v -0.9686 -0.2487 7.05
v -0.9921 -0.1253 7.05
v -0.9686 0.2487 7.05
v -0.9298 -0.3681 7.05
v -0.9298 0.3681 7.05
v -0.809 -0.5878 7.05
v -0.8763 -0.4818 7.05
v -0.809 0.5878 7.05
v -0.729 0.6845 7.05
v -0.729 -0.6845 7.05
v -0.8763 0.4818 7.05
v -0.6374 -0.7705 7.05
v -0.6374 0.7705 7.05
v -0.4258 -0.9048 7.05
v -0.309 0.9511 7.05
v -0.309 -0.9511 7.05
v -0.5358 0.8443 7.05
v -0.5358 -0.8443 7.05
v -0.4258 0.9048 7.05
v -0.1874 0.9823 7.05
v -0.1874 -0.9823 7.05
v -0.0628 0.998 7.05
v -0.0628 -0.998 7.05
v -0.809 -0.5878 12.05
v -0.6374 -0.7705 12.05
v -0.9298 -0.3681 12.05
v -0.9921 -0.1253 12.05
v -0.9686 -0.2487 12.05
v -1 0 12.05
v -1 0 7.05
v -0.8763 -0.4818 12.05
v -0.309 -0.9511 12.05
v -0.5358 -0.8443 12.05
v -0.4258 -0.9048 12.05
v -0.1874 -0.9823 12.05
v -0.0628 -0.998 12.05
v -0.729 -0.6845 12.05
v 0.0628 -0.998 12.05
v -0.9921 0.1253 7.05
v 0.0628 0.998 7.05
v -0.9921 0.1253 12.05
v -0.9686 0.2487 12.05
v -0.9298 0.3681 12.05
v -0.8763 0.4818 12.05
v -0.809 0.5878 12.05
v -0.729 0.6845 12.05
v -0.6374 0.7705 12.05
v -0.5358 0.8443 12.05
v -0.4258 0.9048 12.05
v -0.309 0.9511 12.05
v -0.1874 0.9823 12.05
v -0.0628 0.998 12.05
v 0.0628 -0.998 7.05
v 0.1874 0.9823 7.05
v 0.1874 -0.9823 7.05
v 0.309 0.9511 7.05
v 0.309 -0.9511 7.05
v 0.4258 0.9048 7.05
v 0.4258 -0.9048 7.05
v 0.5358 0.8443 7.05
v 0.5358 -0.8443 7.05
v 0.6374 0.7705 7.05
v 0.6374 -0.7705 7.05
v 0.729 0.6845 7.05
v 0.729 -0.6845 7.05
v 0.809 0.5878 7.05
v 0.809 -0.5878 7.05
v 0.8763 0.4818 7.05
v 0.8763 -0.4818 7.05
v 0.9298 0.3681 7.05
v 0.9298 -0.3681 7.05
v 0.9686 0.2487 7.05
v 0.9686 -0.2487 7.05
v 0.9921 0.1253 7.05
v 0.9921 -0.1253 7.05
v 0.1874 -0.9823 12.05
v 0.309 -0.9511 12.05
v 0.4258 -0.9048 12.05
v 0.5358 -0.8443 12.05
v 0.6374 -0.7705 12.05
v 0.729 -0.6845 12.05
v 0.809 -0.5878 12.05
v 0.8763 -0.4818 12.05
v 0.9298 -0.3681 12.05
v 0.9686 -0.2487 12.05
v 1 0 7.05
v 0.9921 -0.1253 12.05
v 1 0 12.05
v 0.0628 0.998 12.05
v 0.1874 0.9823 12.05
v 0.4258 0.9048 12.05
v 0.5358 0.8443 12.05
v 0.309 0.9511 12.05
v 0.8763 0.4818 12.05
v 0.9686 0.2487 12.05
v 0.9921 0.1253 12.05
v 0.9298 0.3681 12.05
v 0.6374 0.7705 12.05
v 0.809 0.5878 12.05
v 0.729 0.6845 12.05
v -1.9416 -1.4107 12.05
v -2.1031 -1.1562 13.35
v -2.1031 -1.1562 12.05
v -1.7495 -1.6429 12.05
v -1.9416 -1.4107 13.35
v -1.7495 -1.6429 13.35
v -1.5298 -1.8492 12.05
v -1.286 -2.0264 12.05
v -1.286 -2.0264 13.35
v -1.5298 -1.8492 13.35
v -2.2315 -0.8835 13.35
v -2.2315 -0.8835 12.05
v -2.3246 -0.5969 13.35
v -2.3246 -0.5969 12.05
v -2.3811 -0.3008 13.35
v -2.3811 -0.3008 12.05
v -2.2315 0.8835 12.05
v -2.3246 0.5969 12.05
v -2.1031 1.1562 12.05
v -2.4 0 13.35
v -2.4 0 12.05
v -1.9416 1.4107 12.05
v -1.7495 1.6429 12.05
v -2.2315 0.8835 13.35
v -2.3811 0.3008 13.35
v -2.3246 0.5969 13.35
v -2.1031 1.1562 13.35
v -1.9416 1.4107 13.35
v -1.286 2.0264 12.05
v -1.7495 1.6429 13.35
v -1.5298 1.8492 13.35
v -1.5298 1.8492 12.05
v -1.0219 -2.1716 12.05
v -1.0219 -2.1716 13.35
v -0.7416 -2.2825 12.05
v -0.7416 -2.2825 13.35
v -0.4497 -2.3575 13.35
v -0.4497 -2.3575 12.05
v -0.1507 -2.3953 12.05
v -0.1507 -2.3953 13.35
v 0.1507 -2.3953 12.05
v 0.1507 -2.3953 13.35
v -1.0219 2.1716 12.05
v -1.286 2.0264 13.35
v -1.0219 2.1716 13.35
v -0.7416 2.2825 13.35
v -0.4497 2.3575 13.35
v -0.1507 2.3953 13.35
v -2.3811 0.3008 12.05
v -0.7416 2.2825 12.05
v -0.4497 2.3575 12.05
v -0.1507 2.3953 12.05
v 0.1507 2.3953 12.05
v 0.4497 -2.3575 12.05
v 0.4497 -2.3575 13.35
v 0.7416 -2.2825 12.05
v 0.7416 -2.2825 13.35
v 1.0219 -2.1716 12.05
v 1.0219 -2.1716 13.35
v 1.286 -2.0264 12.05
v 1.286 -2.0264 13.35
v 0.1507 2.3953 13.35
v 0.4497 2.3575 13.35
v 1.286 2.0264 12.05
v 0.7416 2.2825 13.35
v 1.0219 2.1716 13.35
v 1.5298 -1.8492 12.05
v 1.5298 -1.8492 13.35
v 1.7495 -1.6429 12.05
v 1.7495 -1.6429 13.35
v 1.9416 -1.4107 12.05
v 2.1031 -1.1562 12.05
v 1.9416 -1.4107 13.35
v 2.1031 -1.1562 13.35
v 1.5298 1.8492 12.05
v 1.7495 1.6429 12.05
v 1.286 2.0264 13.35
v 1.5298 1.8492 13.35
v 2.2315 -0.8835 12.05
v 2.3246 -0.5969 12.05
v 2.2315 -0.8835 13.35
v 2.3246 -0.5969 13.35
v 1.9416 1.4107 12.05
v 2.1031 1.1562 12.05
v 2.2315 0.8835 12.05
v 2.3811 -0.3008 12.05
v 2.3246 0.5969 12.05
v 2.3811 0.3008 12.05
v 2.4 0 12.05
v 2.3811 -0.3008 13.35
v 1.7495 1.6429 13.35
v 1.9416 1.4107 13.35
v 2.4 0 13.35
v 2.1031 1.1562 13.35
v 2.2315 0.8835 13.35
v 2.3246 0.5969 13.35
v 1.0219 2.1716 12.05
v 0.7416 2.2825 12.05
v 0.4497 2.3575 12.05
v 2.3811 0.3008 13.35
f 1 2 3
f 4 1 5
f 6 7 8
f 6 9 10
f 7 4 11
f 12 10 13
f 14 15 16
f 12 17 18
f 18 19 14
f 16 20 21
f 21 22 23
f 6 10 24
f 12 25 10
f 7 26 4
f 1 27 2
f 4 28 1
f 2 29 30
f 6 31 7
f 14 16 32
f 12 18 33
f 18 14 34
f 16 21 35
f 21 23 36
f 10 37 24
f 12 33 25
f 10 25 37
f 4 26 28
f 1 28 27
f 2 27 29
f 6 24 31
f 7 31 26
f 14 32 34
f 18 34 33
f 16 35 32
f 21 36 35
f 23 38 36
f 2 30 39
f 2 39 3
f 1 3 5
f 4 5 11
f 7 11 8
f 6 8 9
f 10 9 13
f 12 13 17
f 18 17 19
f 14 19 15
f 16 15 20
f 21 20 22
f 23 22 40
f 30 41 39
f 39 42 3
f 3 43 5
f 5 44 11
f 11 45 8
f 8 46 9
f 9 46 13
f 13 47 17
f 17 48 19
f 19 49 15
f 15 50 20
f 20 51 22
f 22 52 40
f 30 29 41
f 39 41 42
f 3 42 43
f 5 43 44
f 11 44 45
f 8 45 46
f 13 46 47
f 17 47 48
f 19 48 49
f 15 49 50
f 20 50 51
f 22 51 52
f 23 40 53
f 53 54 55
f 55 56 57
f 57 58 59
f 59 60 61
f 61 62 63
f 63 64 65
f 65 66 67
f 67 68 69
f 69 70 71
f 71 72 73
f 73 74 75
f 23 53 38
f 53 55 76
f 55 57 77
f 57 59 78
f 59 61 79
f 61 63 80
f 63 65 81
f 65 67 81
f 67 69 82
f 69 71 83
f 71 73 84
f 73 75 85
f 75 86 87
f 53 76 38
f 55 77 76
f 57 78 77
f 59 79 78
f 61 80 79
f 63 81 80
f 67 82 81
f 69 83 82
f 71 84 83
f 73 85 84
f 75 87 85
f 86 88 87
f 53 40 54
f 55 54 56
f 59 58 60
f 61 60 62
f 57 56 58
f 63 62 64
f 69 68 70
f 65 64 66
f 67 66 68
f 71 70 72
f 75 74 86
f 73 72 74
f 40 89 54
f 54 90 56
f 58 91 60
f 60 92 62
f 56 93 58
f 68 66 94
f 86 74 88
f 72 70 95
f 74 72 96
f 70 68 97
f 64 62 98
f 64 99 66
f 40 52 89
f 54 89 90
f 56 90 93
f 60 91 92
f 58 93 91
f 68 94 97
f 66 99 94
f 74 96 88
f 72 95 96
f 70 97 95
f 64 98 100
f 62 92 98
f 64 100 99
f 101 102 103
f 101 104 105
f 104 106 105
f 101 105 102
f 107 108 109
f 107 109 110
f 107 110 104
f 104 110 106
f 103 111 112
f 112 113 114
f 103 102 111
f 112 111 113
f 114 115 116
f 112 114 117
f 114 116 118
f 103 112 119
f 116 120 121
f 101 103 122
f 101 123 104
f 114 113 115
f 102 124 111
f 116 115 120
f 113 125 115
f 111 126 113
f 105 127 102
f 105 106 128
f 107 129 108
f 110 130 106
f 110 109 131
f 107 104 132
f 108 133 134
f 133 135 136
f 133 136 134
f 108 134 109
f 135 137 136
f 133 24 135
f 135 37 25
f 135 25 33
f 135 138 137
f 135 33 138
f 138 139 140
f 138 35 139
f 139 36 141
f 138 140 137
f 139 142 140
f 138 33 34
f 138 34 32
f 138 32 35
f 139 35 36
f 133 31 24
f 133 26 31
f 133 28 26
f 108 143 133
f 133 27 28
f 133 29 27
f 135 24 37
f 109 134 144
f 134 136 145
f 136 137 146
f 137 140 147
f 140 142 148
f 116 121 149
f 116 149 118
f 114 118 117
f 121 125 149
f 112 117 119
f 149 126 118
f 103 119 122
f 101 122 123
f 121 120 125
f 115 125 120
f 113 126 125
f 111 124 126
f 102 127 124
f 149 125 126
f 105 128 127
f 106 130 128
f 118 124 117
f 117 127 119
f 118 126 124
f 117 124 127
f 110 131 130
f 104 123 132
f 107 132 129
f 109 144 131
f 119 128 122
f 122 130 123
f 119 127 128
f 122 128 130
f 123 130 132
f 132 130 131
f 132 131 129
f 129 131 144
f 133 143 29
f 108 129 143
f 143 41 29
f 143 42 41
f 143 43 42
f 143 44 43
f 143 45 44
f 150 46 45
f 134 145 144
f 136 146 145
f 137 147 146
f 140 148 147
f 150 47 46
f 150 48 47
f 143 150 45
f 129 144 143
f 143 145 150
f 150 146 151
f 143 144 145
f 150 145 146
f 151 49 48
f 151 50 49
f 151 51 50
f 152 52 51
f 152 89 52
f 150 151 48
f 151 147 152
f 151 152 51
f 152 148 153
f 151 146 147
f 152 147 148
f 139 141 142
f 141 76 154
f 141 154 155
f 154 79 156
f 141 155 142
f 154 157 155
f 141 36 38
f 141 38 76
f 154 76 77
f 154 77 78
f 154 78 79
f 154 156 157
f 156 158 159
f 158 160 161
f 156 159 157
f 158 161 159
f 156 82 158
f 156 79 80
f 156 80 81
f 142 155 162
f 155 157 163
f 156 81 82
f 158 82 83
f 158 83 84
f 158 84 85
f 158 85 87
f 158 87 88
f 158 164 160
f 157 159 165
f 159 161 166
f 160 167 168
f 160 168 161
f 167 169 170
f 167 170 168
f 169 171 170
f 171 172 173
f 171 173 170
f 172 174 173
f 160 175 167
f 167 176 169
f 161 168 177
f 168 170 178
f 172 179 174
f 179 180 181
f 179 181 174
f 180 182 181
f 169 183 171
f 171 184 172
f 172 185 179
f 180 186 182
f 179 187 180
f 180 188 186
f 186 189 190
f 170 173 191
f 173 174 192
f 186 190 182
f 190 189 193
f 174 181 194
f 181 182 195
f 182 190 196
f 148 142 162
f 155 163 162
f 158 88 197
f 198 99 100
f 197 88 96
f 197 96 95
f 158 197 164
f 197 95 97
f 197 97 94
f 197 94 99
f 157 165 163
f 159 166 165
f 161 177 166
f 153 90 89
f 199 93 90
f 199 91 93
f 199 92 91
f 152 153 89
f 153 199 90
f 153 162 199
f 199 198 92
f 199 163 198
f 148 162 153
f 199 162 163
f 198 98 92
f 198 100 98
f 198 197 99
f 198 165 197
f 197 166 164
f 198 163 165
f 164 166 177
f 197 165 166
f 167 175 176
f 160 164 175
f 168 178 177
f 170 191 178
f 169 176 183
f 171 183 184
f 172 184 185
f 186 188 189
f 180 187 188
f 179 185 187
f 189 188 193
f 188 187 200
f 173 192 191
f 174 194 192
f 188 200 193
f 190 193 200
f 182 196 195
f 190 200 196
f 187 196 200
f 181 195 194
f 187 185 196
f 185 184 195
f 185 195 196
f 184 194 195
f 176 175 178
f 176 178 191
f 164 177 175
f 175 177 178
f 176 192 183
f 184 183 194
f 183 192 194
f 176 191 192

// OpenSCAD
$fn = 50;

difference() {
	union() {
		translate(v = [0, 0, 7.050000000000001]) {
			cylinder(h = 5, r = 1.0);
		}
		translate(v = [0, 0, 12.05]) {
			cylinder(h = 1.3, r = 2.4);
		}
	}
	union();
}
